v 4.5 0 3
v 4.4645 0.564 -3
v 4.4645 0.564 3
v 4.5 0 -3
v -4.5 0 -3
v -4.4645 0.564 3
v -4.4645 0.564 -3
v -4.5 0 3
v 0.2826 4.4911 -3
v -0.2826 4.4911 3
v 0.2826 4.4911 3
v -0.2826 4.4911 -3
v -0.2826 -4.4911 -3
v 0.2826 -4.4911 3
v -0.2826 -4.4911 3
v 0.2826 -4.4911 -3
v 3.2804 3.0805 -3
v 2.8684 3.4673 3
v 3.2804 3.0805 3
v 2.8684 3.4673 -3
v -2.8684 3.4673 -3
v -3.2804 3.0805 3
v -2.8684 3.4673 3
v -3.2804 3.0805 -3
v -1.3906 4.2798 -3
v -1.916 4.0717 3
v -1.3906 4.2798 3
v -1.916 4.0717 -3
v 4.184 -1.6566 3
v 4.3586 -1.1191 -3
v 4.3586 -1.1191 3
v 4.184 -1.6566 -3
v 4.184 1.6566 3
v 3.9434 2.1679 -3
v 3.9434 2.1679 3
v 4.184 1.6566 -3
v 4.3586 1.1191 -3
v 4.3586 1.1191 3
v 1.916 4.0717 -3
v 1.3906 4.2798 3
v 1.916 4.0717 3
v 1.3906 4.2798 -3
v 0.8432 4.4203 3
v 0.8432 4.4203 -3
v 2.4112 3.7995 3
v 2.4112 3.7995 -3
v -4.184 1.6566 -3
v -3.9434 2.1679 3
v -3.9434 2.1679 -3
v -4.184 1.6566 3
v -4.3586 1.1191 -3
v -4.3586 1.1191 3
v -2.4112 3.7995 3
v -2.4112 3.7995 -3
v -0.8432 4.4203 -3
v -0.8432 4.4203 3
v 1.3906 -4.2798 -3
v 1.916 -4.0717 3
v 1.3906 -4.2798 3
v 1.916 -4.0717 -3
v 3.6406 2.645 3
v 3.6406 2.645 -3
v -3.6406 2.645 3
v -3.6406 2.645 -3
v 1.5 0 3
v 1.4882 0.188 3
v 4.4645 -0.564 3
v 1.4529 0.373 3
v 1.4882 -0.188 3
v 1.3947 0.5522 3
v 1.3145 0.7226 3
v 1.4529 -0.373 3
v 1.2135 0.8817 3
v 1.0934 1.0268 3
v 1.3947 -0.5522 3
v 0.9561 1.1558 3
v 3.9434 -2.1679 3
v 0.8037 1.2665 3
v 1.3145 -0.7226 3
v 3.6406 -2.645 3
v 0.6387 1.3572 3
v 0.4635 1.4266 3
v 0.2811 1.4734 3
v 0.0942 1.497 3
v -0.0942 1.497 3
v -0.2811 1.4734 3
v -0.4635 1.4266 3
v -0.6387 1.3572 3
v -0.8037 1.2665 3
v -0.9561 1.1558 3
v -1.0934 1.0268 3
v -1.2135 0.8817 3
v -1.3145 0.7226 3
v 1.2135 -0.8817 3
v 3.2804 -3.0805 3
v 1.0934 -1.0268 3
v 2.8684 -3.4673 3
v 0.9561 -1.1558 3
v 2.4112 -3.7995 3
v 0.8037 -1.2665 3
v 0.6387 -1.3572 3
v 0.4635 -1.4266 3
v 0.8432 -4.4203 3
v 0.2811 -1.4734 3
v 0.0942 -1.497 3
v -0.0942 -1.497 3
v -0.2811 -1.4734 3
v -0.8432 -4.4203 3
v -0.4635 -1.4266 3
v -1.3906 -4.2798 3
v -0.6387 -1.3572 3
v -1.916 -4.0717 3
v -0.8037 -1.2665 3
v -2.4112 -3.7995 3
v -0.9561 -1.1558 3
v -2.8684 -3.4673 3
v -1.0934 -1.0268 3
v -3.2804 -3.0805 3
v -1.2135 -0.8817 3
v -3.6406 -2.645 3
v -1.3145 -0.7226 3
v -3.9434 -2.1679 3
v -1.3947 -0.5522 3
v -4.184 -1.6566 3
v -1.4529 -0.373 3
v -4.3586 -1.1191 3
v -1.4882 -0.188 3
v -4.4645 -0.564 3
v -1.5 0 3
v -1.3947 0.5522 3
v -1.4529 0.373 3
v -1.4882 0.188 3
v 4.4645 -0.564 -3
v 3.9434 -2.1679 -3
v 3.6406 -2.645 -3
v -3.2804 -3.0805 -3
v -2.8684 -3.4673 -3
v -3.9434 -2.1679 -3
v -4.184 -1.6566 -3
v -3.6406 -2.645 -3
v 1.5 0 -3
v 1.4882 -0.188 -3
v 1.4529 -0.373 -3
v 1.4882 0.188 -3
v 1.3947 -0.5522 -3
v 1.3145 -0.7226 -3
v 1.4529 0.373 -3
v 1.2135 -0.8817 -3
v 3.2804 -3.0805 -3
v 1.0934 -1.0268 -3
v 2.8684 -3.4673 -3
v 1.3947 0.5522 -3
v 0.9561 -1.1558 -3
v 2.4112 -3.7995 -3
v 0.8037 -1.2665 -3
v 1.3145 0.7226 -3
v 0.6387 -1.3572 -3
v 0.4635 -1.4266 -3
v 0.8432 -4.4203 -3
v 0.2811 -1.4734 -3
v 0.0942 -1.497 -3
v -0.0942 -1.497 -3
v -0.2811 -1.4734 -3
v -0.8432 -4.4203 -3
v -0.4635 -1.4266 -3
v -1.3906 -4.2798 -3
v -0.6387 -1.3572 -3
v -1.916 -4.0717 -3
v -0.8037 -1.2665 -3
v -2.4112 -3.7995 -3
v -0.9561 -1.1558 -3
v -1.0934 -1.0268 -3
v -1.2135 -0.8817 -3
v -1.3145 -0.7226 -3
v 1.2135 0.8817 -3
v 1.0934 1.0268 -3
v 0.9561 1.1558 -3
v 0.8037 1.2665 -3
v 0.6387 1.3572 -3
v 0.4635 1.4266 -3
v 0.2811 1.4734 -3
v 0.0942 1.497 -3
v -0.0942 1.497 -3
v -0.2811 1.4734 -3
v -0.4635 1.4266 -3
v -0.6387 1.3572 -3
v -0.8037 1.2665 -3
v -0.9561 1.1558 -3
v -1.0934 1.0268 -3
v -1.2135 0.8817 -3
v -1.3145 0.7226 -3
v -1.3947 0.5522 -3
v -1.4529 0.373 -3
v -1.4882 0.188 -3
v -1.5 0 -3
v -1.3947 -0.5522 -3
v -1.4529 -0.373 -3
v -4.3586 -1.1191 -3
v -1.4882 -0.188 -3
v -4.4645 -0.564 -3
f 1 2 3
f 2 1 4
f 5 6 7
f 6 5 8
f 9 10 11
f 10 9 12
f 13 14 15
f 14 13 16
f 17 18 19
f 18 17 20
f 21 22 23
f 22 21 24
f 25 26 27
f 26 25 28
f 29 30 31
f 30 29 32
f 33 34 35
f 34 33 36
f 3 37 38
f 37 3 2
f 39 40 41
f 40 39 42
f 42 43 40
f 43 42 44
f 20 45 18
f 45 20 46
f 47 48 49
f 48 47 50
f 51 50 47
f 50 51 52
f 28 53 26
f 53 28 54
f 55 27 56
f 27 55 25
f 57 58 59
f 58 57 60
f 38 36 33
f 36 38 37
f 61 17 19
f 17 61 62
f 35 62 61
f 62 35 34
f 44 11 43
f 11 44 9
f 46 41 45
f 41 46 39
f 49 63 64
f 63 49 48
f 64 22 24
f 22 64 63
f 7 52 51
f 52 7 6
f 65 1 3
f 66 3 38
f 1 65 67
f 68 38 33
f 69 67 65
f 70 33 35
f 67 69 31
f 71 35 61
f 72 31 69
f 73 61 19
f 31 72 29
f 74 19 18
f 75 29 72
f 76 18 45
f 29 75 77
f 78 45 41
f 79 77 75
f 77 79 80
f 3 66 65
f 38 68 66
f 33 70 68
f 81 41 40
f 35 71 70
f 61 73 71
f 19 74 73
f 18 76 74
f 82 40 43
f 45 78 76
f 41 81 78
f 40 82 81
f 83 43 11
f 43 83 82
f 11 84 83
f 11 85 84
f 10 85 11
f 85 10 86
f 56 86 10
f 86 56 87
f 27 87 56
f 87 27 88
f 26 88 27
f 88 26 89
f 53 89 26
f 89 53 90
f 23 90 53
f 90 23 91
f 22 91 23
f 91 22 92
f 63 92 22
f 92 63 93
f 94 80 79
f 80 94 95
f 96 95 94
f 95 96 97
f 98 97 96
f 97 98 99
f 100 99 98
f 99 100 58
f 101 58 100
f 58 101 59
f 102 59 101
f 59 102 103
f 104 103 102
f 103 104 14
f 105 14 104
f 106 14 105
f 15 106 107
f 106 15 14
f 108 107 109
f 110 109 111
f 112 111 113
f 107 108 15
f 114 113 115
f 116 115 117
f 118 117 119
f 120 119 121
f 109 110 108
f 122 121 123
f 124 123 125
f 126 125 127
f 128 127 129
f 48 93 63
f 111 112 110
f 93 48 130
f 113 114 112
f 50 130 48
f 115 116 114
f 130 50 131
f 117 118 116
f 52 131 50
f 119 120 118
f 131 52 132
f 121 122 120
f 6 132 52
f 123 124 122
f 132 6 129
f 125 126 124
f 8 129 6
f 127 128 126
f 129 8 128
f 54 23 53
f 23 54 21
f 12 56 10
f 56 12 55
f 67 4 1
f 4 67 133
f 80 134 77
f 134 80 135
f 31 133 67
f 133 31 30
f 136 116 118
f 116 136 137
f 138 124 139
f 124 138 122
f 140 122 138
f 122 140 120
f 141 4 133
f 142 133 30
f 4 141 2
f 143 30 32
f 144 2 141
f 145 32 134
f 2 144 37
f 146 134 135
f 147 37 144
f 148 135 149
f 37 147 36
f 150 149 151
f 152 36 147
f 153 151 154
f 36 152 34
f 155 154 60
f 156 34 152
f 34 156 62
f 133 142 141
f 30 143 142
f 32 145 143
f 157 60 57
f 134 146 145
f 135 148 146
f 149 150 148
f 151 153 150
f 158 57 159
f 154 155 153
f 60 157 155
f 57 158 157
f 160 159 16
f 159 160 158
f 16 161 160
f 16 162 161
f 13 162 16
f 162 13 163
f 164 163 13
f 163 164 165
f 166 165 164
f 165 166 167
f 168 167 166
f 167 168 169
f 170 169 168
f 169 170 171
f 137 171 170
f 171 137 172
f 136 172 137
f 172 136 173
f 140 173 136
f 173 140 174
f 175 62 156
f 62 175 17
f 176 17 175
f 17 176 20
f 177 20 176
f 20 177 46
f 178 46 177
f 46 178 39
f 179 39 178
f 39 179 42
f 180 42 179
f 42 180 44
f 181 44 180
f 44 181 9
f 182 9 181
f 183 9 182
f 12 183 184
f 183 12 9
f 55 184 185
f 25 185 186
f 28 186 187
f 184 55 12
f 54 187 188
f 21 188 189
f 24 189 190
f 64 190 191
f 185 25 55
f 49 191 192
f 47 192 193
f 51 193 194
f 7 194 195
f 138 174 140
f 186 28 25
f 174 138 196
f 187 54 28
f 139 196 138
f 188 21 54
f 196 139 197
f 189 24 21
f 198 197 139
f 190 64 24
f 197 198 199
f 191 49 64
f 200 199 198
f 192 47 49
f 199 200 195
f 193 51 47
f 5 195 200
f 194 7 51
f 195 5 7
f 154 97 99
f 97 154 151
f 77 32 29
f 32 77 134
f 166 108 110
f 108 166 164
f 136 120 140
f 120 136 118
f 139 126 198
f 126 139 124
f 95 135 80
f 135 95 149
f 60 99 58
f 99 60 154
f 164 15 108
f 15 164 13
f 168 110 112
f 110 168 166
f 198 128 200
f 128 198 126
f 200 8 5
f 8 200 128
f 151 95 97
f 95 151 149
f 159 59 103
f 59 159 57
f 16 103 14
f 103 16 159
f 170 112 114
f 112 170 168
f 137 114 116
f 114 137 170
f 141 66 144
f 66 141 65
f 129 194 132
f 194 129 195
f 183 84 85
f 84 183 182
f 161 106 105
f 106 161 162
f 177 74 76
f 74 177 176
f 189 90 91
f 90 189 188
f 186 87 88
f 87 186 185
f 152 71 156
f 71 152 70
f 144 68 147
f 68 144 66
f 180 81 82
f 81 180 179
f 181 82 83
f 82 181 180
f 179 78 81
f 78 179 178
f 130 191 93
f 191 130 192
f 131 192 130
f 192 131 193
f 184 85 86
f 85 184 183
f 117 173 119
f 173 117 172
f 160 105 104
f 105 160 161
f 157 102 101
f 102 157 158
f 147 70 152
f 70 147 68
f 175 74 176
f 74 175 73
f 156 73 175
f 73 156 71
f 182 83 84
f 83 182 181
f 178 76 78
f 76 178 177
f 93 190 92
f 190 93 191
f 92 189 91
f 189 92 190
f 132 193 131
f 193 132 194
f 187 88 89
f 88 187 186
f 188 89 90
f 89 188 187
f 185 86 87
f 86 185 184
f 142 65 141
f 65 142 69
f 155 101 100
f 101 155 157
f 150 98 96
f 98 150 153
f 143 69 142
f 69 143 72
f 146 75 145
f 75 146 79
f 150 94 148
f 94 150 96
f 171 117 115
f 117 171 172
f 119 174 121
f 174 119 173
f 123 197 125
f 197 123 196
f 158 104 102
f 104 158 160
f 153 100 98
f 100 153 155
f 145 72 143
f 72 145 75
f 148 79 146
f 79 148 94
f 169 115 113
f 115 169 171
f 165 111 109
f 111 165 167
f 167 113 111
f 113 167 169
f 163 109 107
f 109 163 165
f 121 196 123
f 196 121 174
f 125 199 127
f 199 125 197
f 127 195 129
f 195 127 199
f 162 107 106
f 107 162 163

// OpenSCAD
$fn = 50;


difference() {
	union() {
		translate(v = [0, 0, -3.0000000000]) {
			cylinder(h = 6, r = 4.5000000000);
		}
	}
	union() {
		translate(v = [0, 0, -100.0000000000]) {
			cylinder(h = 200, r = 1.5000000000);
		}
	}
}
